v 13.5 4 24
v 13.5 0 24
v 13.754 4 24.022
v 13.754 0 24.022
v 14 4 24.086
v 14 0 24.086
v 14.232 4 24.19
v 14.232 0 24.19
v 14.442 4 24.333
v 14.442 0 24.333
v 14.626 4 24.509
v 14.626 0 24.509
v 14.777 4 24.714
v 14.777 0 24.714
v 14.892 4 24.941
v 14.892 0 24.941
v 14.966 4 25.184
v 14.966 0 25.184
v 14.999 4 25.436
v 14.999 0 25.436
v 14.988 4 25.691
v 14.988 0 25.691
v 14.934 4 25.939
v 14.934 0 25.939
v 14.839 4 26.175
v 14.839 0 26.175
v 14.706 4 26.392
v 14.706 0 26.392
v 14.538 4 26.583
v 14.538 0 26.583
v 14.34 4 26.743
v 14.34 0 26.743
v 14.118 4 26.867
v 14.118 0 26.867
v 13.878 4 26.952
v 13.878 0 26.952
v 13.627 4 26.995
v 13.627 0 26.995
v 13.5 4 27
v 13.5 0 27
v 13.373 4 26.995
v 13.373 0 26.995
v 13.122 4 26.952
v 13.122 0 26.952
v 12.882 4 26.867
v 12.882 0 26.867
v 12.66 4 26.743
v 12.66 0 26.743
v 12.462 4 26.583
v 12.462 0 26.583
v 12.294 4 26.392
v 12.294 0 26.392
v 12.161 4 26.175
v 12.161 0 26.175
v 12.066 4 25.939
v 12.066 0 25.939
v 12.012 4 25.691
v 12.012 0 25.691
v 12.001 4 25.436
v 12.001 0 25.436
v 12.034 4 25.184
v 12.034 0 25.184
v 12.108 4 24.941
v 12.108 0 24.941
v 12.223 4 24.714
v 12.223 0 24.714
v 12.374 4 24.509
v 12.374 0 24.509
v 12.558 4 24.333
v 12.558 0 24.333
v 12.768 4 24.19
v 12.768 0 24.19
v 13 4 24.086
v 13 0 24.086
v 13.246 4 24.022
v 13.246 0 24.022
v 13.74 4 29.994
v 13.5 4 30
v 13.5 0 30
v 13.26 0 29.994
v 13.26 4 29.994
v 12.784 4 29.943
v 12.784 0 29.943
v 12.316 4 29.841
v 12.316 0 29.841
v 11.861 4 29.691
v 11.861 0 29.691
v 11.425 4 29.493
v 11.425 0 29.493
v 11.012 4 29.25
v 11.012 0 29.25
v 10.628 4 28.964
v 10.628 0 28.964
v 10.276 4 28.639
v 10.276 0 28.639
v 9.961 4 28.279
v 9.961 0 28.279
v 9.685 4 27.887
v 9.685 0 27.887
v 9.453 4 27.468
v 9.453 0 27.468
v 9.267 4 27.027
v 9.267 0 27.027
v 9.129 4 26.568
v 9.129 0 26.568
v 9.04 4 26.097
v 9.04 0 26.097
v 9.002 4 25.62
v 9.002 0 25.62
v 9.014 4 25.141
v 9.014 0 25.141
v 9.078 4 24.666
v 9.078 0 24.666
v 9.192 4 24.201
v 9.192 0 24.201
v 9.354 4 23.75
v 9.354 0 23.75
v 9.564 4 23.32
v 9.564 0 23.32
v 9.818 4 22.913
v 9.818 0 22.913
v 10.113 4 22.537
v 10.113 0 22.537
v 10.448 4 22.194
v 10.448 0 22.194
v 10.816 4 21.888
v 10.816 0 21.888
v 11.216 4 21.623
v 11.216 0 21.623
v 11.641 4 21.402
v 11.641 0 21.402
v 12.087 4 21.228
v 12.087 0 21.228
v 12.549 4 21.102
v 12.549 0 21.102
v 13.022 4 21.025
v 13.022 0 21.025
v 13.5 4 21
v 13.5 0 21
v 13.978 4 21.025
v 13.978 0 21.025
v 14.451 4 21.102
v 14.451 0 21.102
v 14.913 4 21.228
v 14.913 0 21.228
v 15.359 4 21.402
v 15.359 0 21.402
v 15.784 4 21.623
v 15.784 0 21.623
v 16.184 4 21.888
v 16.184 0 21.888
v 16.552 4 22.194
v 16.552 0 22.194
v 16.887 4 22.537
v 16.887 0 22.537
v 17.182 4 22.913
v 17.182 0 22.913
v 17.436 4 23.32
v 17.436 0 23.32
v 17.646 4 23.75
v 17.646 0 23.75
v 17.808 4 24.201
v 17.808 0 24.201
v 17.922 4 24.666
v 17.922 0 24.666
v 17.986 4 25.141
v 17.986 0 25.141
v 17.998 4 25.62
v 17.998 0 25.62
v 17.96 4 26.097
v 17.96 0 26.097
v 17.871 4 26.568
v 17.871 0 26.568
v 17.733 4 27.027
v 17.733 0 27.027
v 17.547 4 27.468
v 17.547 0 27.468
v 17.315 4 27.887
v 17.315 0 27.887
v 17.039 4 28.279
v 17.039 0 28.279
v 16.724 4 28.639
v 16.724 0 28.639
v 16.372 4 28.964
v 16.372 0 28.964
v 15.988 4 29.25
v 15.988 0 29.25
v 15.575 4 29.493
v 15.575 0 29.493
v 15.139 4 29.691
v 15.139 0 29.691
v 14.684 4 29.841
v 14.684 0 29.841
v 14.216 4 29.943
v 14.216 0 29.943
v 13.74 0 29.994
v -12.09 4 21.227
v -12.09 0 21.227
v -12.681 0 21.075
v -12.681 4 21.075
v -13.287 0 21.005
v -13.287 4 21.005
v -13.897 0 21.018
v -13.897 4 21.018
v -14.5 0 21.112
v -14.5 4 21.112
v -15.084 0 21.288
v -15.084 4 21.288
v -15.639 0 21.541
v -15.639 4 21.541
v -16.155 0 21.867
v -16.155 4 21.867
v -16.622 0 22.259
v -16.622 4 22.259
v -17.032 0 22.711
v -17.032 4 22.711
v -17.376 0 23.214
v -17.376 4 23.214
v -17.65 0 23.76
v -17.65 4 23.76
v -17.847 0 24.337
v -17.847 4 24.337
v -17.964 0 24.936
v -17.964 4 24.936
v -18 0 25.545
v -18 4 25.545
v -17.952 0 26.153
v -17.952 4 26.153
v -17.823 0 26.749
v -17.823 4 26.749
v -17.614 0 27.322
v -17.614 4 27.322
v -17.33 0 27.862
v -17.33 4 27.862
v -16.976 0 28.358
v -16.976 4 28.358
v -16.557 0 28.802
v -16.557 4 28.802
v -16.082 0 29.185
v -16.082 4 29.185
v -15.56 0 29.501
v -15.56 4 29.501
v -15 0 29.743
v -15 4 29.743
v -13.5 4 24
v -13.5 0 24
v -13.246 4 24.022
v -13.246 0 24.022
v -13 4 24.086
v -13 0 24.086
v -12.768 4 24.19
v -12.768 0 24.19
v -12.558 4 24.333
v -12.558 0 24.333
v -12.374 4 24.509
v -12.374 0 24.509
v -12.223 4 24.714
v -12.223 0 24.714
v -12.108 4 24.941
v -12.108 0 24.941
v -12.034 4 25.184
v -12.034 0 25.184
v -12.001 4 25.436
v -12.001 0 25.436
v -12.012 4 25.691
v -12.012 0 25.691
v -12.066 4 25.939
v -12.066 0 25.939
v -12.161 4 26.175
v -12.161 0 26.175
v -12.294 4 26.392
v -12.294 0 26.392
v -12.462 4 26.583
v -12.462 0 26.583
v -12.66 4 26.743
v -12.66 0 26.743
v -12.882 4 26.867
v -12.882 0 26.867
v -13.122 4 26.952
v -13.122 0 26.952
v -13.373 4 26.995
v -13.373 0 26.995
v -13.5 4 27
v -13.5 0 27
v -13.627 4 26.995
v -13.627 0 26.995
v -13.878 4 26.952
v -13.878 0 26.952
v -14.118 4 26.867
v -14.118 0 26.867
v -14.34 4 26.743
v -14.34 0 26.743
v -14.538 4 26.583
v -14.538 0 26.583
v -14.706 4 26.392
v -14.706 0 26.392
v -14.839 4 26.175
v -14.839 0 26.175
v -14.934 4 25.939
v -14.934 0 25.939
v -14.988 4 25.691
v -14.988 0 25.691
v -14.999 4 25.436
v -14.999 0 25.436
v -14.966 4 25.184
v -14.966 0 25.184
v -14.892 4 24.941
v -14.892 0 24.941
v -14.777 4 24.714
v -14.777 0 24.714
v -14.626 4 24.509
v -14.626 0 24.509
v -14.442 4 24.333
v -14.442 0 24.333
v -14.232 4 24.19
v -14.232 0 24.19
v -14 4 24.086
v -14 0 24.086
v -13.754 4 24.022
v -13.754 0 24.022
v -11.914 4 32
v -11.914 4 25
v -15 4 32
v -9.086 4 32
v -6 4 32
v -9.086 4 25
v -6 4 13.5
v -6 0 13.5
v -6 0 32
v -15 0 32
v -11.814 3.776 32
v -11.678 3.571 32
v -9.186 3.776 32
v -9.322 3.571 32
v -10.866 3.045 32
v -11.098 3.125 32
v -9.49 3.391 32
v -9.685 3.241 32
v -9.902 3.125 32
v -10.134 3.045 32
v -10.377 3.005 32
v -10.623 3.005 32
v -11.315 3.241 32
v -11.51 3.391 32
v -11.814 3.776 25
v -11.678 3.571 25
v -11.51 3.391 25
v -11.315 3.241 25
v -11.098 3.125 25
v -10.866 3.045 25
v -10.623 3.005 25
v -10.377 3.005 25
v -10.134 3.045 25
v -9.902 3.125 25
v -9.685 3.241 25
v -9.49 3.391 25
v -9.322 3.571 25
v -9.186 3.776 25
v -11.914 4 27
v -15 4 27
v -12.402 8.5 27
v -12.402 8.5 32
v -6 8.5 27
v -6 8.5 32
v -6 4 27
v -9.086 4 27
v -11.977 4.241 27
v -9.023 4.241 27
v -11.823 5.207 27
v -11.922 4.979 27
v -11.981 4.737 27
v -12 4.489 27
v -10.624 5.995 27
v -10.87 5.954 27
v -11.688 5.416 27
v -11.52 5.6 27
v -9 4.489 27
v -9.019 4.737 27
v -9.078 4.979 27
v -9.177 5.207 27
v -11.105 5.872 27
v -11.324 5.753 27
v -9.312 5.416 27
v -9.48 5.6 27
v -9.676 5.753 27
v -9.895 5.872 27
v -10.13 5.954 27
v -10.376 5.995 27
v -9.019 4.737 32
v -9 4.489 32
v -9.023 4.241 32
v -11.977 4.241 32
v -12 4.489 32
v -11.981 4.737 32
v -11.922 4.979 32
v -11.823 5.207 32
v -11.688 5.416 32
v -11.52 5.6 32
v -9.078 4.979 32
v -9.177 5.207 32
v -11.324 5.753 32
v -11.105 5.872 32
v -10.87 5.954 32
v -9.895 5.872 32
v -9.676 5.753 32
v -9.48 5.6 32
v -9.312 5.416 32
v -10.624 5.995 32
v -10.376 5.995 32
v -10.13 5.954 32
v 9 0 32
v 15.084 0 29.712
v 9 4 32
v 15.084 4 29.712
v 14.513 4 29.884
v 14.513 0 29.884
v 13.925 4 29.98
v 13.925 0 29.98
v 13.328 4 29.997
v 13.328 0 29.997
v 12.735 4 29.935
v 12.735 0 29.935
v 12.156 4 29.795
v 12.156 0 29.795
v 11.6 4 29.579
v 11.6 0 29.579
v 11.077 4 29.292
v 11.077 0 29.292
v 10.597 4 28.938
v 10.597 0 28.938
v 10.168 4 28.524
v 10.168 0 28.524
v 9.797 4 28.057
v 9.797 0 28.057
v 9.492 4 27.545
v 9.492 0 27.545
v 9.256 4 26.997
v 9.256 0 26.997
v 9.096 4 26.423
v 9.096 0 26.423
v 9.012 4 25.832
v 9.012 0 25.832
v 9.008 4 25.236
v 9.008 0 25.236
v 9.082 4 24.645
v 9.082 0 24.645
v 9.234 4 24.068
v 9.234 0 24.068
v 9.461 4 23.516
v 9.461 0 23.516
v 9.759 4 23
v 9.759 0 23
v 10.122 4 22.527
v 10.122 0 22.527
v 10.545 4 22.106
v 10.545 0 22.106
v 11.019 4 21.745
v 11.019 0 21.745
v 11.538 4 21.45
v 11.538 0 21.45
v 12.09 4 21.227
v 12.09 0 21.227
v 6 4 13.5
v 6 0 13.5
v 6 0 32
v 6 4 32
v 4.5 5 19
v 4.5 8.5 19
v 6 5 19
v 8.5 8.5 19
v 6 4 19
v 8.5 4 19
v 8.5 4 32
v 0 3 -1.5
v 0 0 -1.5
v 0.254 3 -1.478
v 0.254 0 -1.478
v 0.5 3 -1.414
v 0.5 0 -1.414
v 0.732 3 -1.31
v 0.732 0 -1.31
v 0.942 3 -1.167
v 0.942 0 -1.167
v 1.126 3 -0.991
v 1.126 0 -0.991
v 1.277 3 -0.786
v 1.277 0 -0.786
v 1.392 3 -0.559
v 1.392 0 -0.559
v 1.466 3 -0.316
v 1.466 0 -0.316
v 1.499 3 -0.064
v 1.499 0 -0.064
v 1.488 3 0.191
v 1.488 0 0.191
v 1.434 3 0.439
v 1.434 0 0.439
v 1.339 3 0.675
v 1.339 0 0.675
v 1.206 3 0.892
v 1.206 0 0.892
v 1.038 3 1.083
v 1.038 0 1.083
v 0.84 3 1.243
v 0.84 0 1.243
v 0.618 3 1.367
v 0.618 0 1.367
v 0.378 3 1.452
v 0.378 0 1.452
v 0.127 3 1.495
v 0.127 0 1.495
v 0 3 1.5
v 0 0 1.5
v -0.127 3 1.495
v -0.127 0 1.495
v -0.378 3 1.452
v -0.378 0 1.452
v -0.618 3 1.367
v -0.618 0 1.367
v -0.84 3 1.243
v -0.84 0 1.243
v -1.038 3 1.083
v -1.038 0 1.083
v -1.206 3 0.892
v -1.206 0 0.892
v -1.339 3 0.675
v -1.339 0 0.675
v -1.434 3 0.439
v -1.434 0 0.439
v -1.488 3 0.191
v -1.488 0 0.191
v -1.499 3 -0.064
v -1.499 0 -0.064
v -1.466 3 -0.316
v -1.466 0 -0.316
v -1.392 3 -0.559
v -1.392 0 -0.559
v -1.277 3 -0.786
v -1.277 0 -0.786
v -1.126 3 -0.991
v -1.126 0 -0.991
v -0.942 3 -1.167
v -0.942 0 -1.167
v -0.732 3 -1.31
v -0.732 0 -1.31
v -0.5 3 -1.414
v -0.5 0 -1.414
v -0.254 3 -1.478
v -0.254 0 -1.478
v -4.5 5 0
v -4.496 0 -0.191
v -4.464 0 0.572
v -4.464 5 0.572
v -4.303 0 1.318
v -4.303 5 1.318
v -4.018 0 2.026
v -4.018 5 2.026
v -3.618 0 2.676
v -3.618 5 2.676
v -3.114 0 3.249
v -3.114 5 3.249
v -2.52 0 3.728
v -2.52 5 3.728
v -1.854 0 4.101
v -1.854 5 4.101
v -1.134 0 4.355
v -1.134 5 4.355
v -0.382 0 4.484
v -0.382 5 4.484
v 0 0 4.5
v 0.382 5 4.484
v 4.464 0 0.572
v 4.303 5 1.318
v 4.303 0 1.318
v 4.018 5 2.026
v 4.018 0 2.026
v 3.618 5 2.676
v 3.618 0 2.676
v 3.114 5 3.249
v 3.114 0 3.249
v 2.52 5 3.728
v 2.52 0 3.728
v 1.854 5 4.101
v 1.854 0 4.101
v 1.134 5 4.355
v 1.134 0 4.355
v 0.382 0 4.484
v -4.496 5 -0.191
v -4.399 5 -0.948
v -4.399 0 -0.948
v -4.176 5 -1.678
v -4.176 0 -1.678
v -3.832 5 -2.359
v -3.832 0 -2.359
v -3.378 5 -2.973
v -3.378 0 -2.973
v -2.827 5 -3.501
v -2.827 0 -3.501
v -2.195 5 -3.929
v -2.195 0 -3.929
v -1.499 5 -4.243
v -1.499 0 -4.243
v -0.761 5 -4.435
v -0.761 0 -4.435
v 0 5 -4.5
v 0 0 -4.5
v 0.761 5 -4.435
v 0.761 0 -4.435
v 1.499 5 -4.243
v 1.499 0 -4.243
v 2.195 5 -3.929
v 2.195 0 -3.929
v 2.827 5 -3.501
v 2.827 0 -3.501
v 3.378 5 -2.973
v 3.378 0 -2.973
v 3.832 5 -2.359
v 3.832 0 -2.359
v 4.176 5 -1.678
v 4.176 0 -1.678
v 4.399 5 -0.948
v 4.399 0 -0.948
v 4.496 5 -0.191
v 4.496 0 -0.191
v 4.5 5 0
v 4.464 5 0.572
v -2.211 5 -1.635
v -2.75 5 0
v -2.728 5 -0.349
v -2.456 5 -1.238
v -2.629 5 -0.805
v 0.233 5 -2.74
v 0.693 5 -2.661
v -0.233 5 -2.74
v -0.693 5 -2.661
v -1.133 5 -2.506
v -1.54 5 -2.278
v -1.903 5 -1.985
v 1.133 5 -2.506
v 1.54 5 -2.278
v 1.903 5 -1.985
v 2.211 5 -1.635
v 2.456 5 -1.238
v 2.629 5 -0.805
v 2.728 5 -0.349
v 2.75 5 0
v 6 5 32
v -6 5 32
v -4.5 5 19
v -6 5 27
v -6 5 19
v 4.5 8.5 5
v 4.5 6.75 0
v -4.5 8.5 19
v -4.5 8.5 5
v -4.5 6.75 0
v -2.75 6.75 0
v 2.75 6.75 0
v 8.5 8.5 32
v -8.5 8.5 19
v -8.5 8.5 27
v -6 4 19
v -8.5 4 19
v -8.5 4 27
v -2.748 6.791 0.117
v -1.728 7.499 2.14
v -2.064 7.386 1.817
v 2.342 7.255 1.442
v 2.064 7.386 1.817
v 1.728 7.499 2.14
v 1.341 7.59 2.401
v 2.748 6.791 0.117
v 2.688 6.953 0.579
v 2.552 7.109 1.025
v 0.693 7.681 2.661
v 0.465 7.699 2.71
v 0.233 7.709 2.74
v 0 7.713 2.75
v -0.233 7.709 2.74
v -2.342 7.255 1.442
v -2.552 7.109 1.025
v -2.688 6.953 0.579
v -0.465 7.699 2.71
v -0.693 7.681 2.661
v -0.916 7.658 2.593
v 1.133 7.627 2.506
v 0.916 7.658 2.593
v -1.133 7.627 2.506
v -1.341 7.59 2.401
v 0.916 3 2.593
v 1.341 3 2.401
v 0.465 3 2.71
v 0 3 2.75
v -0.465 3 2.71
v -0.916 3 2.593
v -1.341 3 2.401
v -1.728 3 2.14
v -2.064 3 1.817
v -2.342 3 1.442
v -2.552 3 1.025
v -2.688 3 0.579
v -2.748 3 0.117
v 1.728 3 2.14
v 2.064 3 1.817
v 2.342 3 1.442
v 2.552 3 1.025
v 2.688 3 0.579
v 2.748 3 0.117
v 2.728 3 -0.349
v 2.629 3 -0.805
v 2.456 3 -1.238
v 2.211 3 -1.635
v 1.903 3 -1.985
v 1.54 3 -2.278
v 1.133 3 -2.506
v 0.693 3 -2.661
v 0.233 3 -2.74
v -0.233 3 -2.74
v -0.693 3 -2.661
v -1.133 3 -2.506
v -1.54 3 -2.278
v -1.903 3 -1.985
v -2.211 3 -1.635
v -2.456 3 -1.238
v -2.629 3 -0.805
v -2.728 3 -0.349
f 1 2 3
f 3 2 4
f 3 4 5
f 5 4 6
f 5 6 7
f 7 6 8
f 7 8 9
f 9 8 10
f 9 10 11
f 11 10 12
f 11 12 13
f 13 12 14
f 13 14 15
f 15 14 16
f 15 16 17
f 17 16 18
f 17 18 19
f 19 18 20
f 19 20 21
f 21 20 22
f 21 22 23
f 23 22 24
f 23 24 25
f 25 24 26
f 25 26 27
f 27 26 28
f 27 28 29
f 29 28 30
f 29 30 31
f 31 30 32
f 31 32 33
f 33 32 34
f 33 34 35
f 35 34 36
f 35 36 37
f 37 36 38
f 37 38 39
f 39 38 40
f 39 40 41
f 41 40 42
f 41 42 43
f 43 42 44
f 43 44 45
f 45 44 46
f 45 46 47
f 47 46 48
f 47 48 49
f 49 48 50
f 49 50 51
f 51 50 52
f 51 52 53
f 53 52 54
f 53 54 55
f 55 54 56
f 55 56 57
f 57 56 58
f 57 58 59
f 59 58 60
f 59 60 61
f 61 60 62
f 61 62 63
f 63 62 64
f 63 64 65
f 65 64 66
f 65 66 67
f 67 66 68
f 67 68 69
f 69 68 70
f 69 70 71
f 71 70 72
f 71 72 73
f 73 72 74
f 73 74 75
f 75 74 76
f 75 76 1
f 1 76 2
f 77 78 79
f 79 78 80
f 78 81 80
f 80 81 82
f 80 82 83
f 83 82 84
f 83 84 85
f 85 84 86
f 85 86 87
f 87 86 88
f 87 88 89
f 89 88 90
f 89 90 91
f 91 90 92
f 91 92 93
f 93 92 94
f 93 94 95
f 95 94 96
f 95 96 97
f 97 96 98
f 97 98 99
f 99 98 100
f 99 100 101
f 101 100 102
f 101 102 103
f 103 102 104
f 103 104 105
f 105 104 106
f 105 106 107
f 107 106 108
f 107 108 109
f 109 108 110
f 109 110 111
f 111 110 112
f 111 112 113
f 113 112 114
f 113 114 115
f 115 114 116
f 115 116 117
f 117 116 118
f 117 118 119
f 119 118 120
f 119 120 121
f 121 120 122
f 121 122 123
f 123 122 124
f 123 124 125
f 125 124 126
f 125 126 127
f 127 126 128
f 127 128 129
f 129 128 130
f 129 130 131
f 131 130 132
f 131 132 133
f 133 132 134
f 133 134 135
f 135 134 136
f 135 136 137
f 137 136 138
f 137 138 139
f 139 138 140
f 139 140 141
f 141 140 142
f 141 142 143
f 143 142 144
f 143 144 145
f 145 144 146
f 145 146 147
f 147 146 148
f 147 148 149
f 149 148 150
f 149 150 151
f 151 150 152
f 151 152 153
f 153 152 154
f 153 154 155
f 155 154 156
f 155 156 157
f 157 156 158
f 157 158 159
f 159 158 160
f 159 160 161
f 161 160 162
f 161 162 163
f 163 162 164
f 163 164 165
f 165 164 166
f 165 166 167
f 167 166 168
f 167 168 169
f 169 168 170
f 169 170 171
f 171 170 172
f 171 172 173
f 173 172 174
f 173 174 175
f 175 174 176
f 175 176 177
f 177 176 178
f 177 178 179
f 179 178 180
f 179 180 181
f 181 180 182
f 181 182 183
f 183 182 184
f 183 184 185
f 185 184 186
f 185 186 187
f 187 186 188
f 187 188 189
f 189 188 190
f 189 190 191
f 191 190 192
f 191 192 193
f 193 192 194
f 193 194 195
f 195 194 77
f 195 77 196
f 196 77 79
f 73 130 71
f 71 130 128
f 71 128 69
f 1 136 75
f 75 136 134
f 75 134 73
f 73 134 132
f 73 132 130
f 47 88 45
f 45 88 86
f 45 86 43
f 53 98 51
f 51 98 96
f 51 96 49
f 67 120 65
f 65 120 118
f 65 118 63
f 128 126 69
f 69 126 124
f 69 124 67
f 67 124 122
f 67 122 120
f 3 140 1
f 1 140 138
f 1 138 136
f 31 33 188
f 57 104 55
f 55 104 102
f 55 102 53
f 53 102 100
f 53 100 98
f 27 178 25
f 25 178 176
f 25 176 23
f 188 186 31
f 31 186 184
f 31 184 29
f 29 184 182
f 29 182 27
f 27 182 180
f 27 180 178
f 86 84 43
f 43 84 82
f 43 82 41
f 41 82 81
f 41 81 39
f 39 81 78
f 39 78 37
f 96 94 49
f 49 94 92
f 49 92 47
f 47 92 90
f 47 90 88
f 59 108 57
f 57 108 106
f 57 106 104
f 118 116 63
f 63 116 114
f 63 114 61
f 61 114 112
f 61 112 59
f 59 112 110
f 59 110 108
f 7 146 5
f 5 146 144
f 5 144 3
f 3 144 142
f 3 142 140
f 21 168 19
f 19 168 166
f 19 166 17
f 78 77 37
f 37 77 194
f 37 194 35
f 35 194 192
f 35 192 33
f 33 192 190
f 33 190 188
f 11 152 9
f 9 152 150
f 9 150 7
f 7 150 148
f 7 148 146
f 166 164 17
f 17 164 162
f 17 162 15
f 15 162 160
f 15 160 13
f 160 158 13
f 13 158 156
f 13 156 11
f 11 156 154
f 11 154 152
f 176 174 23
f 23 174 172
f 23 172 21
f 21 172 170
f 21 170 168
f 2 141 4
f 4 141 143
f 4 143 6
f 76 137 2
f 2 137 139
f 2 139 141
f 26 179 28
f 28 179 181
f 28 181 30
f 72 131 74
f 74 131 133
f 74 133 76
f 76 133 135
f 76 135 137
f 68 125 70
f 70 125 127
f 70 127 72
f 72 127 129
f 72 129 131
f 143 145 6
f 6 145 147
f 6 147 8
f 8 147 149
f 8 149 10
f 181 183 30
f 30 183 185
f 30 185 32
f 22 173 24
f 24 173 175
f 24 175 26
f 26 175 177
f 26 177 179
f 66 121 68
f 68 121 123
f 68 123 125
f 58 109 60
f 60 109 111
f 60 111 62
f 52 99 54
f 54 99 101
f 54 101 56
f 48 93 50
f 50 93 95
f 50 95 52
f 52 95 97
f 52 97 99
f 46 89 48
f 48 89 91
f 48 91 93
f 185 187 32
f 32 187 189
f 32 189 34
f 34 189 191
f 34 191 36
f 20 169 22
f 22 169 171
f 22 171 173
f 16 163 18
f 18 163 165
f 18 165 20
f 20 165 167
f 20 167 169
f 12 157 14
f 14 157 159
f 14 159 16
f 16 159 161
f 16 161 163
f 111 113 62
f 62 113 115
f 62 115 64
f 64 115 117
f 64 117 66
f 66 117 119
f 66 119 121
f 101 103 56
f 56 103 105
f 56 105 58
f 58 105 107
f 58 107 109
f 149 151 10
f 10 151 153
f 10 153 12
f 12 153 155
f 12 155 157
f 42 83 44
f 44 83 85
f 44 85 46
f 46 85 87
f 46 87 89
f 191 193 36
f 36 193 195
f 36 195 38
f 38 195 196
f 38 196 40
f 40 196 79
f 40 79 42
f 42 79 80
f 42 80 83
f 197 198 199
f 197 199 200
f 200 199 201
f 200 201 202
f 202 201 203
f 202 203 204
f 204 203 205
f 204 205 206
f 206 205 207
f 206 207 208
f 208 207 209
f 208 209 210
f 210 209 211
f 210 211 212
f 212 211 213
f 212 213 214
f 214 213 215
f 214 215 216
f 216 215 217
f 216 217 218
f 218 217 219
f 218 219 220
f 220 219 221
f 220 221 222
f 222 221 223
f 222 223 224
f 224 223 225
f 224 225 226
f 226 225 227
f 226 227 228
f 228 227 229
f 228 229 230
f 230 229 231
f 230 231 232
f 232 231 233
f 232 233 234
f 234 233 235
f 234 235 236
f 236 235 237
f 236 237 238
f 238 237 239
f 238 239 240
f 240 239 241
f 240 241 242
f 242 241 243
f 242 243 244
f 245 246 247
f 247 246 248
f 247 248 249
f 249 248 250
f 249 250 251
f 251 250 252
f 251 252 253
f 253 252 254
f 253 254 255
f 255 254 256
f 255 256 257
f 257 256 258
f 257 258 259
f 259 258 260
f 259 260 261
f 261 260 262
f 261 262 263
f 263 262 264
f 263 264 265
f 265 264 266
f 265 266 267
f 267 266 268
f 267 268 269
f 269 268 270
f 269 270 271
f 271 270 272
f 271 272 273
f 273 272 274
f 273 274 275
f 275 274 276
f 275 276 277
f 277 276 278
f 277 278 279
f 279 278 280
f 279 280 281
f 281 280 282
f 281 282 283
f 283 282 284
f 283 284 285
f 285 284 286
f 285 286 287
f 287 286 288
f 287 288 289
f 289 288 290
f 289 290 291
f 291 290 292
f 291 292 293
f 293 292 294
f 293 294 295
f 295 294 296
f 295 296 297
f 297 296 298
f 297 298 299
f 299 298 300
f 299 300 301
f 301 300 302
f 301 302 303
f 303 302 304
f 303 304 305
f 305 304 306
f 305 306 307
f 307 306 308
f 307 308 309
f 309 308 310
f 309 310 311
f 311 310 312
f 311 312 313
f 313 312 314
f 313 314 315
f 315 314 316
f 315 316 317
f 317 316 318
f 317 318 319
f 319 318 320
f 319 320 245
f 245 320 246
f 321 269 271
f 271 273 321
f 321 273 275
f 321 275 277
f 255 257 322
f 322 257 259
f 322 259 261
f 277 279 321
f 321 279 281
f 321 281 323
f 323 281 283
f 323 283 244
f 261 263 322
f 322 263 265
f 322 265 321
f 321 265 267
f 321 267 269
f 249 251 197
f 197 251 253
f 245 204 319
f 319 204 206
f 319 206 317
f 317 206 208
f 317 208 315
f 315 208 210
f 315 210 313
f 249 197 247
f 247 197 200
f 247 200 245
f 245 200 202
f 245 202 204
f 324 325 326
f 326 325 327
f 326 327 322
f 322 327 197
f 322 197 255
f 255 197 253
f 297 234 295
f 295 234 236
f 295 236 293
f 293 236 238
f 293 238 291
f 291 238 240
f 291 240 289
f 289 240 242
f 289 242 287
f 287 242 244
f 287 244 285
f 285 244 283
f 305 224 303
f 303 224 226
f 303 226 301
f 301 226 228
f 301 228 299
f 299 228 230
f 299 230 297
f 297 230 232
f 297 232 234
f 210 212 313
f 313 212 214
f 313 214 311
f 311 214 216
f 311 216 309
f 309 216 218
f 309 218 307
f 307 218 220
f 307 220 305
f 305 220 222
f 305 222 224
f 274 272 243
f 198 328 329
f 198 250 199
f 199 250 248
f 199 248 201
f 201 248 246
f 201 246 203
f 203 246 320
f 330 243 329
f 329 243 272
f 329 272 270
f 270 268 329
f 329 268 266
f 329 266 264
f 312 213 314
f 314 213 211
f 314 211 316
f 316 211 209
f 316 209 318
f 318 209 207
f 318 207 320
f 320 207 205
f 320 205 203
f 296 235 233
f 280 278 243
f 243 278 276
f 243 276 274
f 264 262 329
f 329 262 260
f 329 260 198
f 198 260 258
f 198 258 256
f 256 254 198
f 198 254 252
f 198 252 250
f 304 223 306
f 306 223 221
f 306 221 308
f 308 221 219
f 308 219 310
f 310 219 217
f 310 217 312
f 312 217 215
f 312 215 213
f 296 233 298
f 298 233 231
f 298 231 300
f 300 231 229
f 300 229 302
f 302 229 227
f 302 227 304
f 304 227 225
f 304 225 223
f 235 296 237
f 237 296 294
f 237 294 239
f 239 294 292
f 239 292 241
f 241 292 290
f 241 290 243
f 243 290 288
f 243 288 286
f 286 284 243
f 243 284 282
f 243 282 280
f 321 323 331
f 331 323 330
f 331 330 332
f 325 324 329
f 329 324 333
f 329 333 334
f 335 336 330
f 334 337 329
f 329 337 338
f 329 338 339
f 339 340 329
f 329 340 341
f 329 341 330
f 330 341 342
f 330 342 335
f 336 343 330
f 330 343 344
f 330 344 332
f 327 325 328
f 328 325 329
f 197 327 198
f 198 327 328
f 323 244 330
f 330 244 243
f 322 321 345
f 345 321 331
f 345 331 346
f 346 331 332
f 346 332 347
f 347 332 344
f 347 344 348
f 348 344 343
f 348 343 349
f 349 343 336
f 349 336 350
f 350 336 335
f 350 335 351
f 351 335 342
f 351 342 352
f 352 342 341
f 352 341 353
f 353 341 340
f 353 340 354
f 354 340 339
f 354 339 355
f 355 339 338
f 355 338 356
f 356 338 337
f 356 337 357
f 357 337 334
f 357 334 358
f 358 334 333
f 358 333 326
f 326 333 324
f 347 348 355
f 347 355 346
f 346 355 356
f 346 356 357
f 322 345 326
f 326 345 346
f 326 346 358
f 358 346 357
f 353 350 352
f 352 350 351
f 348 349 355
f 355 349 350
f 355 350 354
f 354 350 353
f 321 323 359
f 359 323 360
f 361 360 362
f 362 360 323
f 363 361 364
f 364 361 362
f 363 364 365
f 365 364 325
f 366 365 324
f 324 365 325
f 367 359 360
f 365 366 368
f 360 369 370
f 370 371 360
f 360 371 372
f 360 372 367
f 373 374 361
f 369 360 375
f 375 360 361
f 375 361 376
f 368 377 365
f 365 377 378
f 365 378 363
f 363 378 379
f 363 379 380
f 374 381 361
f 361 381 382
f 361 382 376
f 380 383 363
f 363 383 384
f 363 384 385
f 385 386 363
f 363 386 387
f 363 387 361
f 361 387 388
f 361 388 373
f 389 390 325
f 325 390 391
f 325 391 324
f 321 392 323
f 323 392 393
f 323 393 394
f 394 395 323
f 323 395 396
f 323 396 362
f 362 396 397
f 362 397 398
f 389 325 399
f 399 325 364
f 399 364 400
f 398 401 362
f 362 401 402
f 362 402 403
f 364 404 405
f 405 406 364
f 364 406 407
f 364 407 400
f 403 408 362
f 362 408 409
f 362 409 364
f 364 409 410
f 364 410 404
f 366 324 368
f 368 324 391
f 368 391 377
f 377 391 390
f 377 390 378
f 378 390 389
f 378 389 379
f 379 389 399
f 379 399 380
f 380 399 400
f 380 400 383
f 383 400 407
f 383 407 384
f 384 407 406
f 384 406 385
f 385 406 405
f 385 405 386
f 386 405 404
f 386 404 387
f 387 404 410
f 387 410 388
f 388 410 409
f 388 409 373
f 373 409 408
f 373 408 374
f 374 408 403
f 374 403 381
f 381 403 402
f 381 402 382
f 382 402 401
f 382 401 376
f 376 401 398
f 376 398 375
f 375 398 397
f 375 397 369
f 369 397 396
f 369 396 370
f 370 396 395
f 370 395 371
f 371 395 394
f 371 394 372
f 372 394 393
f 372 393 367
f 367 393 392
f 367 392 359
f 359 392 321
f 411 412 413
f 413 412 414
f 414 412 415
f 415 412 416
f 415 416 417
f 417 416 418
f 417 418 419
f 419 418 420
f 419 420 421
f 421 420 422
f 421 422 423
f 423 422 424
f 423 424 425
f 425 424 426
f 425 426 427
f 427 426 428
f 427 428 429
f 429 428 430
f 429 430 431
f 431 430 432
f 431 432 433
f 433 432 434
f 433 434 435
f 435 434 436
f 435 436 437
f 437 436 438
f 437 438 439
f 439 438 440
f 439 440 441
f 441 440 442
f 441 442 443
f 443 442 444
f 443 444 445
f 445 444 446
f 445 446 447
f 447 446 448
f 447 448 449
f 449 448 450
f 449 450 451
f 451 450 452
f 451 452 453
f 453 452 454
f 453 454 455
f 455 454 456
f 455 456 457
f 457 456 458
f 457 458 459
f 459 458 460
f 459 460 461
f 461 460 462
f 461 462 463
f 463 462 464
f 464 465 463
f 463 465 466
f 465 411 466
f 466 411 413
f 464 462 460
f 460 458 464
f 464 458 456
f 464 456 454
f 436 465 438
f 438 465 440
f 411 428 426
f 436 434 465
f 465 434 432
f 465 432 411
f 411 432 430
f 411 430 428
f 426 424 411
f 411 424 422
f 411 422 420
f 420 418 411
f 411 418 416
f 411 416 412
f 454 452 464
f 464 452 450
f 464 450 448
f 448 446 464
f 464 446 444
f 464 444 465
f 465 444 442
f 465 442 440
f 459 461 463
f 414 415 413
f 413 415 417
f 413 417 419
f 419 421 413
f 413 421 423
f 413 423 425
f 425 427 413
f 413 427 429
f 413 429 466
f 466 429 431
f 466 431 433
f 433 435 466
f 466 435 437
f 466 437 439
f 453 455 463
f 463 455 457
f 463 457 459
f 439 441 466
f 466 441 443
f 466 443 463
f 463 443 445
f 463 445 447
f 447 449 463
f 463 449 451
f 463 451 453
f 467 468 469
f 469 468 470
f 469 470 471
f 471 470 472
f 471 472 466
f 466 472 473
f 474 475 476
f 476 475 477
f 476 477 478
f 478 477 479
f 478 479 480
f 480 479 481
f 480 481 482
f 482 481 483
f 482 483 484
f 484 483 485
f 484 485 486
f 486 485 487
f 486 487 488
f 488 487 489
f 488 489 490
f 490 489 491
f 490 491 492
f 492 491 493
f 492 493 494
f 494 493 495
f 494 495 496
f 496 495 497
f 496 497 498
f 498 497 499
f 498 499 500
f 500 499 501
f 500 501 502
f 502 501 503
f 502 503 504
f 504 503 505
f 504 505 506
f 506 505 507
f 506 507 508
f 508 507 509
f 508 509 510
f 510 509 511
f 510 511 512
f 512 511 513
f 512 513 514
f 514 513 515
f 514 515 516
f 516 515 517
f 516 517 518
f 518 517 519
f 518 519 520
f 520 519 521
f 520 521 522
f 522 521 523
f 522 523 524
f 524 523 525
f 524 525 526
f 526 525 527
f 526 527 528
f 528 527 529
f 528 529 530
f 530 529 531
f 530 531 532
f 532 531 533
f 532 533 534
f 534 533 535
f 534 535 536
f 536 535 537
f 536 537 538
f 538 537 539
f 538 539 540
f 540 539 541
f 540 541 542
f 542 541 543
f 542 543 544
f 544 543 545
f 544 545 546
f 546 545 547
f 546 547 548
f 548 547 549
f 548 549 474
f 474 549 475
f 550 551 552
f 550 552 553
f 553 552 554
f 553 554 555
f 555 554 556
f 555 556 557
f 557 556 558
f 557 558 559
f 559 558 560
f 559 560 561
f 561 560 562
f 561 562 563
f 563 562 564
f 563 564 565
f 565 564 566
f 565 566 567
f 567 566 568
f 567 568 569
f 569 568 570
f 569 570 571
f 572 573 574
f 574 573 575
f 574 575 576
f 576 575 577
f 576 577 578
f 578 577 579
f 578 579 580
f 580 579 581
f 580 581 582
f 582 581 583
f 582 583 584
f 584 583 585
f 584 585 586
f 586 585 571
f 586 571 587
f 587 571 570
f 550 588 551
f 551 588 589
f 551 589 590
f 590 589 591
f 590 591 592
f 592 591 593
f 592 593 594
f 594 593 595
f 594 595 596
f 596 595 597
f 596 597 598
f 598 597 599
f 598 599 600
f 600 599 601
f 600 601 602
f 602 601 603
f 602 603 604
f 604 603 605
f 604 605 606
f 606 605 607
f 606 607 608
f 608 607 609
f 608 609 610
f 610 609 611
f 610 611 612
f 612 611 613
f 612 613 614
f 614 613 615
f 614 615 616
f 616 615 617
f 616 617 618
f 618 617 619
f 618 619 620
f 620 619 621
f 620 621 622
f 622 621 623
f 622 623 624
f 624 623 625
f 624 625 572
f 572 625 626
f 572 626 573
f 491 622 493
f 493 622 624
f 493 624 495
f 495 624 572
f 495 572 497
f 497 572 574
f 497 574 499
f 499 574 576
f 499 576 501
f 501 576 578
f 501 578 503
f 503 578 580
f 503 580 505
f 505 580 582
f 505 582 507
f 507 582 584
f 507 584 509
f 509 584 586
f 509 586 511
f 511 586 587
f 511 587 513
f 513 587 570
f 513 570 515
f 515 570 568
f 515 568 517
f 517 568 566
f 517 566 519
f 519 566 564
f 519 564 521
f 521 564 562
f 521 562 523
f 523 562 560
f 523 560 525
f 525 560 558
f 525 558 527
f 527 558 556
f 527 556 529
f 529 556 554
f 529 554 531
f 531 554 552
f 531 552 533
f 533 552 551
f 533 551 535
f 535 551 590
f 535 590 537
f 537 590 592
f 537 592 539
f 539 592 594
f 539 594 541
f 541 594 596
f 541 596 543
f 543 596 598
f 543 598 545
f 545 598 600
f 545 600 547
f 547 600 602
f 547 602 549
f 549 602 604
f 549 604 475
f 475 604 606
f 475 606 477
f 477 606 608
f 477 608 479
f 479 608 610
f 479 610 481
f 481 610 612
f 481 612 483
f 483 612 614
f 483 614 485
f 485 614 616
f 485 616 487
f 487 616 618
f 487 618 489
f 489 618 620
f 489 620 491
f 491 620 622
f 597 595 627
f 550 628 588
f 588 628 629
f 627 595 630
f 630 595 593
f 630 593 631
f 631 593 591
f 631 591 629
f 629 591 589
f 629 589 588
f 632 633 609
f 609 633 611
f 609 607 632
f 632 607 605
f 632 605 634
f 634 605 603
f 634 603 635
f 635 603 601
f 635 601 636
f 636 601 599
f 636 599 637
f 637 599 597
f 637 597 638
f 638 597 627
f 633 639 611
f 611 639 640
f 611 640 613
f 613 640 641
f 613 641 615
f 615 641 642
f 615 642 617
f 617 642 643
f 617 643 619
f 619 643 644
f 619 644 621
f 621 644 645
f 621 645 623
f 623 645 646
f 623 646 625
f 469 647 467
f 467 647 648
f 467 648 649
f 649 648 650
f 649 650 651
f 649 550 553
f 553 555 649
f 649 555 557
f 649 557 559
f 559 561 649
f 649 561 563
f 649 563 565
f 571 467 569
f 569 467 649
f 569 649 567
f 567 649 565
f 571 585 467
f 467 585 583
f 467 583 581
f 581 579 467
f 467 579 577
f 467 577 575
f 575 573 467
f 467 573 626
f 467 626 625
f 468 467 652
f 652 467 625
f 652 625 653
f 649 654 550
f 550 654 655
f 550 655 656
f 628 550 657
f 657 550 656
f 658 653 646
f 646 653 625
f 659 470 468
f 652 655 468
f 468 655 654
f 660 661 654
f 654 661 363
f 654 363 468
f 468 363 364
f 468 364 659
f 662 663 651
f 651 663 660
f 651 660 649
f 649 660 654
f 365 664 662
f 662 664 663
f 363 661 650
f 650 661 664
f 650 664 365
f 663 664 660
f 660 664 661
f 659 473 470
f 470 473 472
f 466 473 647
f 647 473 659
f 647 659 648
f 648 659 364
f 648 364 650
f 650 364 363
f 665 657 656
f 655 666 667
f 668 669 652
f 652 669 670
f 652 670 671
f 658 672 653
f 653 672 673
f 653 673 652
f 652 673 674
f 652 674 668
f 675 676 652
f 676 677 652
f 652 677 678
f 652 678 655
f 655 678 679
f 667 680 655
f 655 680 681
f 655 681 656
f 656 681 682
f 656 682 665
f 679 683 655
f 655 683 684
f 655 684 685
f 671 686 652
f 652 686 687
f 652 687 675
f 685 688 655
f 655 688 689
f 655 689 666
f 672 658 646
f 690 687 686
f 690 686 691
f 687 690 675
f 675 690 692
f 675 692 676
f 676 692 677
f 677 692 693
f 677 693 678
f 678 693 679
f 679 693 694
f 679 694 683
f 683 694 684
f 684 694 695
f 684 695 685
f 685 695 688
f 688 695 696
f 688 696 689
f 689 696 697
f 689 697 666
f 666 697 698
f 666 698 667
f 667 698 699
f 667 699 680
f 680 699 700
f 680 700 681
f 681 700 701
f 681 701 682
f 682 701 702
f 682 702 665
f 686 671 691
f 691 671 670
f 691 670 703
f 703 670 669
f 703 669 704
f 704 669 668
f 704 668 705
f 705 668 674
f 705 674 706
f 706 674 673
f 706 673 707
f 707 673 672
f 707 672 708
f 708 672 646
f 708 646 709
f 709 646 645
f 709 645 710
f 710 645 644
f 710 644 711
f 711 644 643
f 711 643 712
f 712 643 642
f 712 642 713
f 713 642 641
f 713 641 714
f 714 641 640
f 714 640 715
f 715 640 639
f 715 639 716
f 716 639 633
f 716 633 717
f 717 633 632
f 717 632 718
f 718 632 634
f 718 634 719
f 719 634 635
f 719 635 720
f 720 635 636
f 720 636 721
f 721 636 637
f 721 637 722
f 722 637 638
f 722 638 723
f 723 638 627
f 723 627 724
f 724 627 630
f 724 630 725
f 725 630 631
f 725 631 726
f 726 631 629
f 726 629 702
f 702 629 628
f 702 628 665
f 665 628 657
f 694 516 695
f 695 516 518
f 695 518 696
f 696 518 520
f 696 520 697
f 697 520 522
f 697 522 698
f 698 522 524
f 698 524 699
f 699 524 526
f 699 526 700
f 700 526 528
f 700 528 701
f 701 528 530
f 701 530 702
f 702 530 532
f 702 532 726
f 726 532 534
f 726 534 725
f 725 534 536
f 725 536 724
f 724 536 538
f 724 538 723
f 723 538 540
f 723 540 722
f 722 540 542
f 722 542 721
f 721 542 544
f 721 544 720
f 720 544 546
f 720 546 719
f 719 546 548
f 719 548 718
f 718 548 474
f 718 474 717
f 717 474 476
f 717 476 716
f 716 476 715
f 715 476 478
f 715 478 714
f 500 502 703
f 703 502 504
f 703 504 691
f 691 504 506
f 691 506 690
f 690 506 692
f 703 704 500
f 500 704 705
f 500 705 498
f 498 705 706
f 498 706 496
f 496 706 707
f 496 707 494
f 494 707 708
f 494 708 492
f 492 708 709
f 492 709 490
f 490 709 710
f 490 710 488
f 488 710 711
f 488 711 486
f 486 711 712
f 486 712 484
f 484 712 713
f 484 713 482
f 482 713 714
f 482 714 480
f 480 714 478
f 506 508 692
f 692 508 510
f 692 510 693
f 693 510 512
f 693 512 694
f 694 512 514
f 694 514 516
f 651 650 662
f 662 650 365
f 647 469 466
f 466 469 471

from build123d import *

# Parameters (mm, degrees)
SKETCH_1_R               = 4.5
SKETCH_1_R_2             = 1.5
EXTRUDE_2_DEPTH          = 4
EXTRUDE_2_2_DEPTH        = 4
EXTRUDE_2_3_DEPTH        = 4
EXTRUDE_3_DEPTH          = 4
EXTRUDE_START            = -5
EXTRUDE_4_DEPTH          = 5
CUT_EXTRUDE_1_DEPTH      = 7
EXTRUDE_5_DEPTH          = 4
SKETCH_6_R               = 4.5
SKETCH_6_R_2             = 1.5
EXTRUDE_6_DEPTH          = 1
SKETCH_7_W               = 2.5
SKETCH_7_H               = 8
SKETCH_7_H_2             = 5
SKETCH_7_W_2             = 6
EXTRUDE_7_DEPTH          = 4.5
EXTRUDE_8_DEPTH          = 3.5
CUT_EXTRUDE_2_DEPTH      = 41.031237802
CUT_EXTRUDE_2_DEPTH_BACK = 41.031237802
CUT_EXTRUDE_START        = 5
SKETCH_10_R              = 2.75
CUT_EXTRUDE_3_DEPTH      = 7
SKETCH_11_W              = 12
SKETCH_11_H              = 1
CUT_EXTRUDE_4_DEPTH      = 13


# Read off the part's stored shape, not the designer's step: Бобышка-Вытянуть4
with BuildPart() as part:
    # Эскиз1 → Бобышка-Вытянуть2 (new body)
    with BuildSketch(Plane(origin=(0, 0, 0), x_dir=(1, 0, 0), z_dir=(0, 1, 0))):
        with Locations(Location((0, 0, 0), (0, 0, 270))):
            Circle(SKETCH_1_R)
        with Locations(Location((0, 0, 0), (0, 0, 270))):
            Circle(SKETCH_1_R_2, mode=Mode.SUBTRACT)
    extrude(amount=EXTRUDE_2_DEPTH)

    # Эскиз6 → Бобышка-Вытянуть6 (add)
    with BuildSketch(Plane(origin=(0, 4, 0), x_dir=(1, 0, 0), z_dir=(0, 1, 0))):
        with Locations(Location((0, 0, 0), (0, 0, 270))):
            Circle(SKETCH_6_R)
        with Locations(Location((0, 0, 0), (0, 0, 270))):
            Circle(SKETCH_6_R_2, mode=Mode.SUBTRACT)
    extrude(amount=EXTRUDE_6_DEPTH)



with BuildPart() as body_2:
    # Эскиз1 → Extrude 2 2 (new body)
    with BuildSketch(Plane(origin=(0, 0, 0), x_dir=(1, 0, 0), z_dir=(0, 1, 0))):
        with Locations(Location((13.5, -25.5, 0), (0, 0, 270))):
            Circle(SKETCH_1_R)
        with Locations(Location((13.5, -25.5, 0), (0, 0, 270))):
            Circle(SKETCH_1_R_2, mode=Mode.SUBTRACT)
    extrude(amount=EXTRUDE_2_2_DEPTH)


with BuildPart() as body_3:
    # Эскиз1 → Extrude 2 3 (new body)
    with BuildSketch(Plane(origin=(0, 0, 0), x_dir=(1, 0, 0), z_dir=(0, 1, 0))):
        with Locations(Location((-13.5, -25.5, 0), (0, 0, 270))):
            Circle(SKETCH_1_R)
        with Locations(Location((-13.5, -25.5, 0), (0, 0, 270))):
            Circle(SKETCH_1_R_2, mode=Mode.SUBTRACT)
    extrude(amount=EXTRUDE_2_3_DEPTH)

    # Эскиз2 → Бобышка-Вытянуть3 (add)
    with BuildSketch(Plane(origin=(0, 0, 0), x_dir=(1, 0, 0), z_dir=(0, 1, 0))):
        with BuildLine():
            Line((-15, -29.742640687), (-15, -32))
            Line((-15, -32), (-6, -32))
            Line((-6, -32), (-6, -13.5))
            Line((-6, -13.5), (-12.090241258, -21.22652597))
            ThreePointArc((-12.090241258, -21.22652597), (-9.241703587, -26.95496105), (-15, -29.742640687))
        make_face()
    extrude(amount=EXTRUDE_3_DEPTH)


with BuildPart() as body_4:
    # Бобышка-Вытянуть4 outline → Бобышка-Вытянуть4 (new body)
    with BuildSketch(Plane.XY.offset(32).offset(EXTRUDE_START)):
        Polygon((-12.401923789, 8.5), (-15, 4), (-6, 4), (-6, 8.5), align=None)
    extrude(amount=EXTRUDE_4_DEPTH)


with BuildPart() as cut_extrude_1_tool:
    # Эскиз4 → Вырез-Вытянуть1 (new body)
    with BuildSketch(Plane.XY.offset(32)):
        with BuildLine():
            ThreePointArc((-9.085786438, 4), (-9.021602161, 4.246347032), (-9, 4.5))
            ThreePointArc((-9, 4.5), (-10.753652968, 5.978397839), (-11.914213562, 4))
            Line((-11.914213562, 4), (-9.085786438, 4))
        make_face()
        with BuildLine():
            Line((-9.085786438, 4), (-11.914213562, 4))
            ThreePointArc((-11.914213562, 4), (-10.5, 3), (-9.085786438, 4))
        make_face()
    extrude(amount=-CUT_EXTRUDE_1_DEPTH)


with BuildPart() as body_3_1:
    add(body_3.part)

    # Вырез-Вытянуть1: cut by cut_extrude_1_tool
    add(cut_extrude_1_tool.part, mode=Mode.SUBTRACT)


with BuildPart() as body_4_1:
    add(body_4.part)

    # Вырез-Вытянуть1: cut by cut_extrude_1_tool
    add(cut_extrude_1_tool.part, mode=Mode.SUBTRACT)


with BuildPart() as body_5:
    # Эскиз5 → Бобышка-Вытянуть5 (new body)
    with BuildSketch(Plane(origin=(0, 0, 0), x_dir=(1, 0, 0), z_dir=(0, 1, 0))):
        with BuildLine():
            Line((6, -32), (9, -32))
            Line((9, -32), (15.084, -29.712))
            ThreePointArc((15.084, -29.712), (9.256368609, -26.997194916), (12.090241258, -21.22652597))
            Line((12.090241258, -21.22652597), (6, -13.5))
            Line((6, -13.5), (6, -17.357142857))
            Line((6, -17.357142857), (6, -32))
        make_face()
    extrude(amount=EXTRUDE_5_DEPTH)


with BuildPart() as body_6:
    # Эскиз7 → Бобышка-Вытянуть7 (new body)
    with BuildSketch(Plane(origin=(0, 4, 0), x_dir=(1, 0, 0), z_dir=(0, 1, 0))):
        with Locations((7.25, -23)):
            Rectangle(SKETCH_7_W, SKETCH_7_H)
        with Locations((7.25, -29.5)):
            Rectangle(SKETCH_7_W, SKETCH_7_H_2)
        with Locations((3, -23)):
            Rectangle(SKETCH_7_W_2, SKETCH_7_H)
        with Locations((3, -29.5)):
            Rectangle(SKETCH_7_W_2, SKETCH_7_H_2)
        Polygon((0, -27), (0, -19), (-8.5, -19), (-8.5, -27), (-6, -27), align=None)
        with Locations((-3, -29.5)):
            Rectangle(SKETCH_7_W_2, SKETCH_7_H_2)
    extrude(amount=EXTRUDE_7_DEPTH)


with BuildPart() as part_1:
    add(part.part)

    add(body_6.part)  # Бобышка-Вытянуть8 merges body 6
    # Эскиз8 → Бобышка-Вытянуть8 (add)
    with BuildSketch(Plane(origin=(0, 5, 0), x_dir=(1, 0, 0), z_dir=(0, 1, 0))):
        with BuildLine():
            Line((4.5, 0), (4.5, -19))
            Line((4.5, -19), (-4.5, -19))
            Line((-4.5, -19), (-4.5, 0))
            Line((-4.5, 0), (-1.5, 0))
            ThreePointArc((-1.5, 0), (0, -1.5), (1.5, 0))
            Line((1.5, 0), (4.5, 0))
        make_face()
    extrude(amount=EXTRUDE_8_DEPTH)

    # Эскиз9 → Вырез-Вытянуть2 (cut, two sides: drawn at the far end of the back side and taken through both)
    with BuildSketch(Plane.ZY.offset(4.5).offset(-CUT_EXTRUDE_2_DEPTH_BACK)):
        Polygon((0, 8.5), (0, 6.75), (5, 8.5), align=None)
    extrude(amount=CUT_EXTRUDE_2_DEPTH + CUT_EXTRUDE_2_DEPTH_BACK, mode=Mode.SUBTRACT)

    # Эскиз10 → Вырез-Вытянуть3 (cut)
    with BuildSketch(Plane(origin=(0, 5, 0), x_dir=(1, 0, 0), z_dir=(0, 1, 0)).offset(CUT_EXTRUDE_START)):
        with Locations(Location((0, 0, 0), (0, 0, 270))):
            Circle(SKETCH_10_R)
    extrude(amount=-CUT_EXTRUDE_3_DEPTH, mode=Mode.SUBTRACT)

    # Эскиз11 → Вырез-Вытянуть4 (cut)
    with BuildSketch(Plane.XY.offset(32)):
        with Locations((0, 4.5)):
            Rectangle(SKETCH_11_W, SKETCH_11_H)
    extrude(amount=-CUT_EXTRUDE_4_DEPTH, mode=Mode.SUBTRACT)


solid = Compound([body_2.part, body_3_1.part, body_4_1.part, body_5.part, part_1.part])
